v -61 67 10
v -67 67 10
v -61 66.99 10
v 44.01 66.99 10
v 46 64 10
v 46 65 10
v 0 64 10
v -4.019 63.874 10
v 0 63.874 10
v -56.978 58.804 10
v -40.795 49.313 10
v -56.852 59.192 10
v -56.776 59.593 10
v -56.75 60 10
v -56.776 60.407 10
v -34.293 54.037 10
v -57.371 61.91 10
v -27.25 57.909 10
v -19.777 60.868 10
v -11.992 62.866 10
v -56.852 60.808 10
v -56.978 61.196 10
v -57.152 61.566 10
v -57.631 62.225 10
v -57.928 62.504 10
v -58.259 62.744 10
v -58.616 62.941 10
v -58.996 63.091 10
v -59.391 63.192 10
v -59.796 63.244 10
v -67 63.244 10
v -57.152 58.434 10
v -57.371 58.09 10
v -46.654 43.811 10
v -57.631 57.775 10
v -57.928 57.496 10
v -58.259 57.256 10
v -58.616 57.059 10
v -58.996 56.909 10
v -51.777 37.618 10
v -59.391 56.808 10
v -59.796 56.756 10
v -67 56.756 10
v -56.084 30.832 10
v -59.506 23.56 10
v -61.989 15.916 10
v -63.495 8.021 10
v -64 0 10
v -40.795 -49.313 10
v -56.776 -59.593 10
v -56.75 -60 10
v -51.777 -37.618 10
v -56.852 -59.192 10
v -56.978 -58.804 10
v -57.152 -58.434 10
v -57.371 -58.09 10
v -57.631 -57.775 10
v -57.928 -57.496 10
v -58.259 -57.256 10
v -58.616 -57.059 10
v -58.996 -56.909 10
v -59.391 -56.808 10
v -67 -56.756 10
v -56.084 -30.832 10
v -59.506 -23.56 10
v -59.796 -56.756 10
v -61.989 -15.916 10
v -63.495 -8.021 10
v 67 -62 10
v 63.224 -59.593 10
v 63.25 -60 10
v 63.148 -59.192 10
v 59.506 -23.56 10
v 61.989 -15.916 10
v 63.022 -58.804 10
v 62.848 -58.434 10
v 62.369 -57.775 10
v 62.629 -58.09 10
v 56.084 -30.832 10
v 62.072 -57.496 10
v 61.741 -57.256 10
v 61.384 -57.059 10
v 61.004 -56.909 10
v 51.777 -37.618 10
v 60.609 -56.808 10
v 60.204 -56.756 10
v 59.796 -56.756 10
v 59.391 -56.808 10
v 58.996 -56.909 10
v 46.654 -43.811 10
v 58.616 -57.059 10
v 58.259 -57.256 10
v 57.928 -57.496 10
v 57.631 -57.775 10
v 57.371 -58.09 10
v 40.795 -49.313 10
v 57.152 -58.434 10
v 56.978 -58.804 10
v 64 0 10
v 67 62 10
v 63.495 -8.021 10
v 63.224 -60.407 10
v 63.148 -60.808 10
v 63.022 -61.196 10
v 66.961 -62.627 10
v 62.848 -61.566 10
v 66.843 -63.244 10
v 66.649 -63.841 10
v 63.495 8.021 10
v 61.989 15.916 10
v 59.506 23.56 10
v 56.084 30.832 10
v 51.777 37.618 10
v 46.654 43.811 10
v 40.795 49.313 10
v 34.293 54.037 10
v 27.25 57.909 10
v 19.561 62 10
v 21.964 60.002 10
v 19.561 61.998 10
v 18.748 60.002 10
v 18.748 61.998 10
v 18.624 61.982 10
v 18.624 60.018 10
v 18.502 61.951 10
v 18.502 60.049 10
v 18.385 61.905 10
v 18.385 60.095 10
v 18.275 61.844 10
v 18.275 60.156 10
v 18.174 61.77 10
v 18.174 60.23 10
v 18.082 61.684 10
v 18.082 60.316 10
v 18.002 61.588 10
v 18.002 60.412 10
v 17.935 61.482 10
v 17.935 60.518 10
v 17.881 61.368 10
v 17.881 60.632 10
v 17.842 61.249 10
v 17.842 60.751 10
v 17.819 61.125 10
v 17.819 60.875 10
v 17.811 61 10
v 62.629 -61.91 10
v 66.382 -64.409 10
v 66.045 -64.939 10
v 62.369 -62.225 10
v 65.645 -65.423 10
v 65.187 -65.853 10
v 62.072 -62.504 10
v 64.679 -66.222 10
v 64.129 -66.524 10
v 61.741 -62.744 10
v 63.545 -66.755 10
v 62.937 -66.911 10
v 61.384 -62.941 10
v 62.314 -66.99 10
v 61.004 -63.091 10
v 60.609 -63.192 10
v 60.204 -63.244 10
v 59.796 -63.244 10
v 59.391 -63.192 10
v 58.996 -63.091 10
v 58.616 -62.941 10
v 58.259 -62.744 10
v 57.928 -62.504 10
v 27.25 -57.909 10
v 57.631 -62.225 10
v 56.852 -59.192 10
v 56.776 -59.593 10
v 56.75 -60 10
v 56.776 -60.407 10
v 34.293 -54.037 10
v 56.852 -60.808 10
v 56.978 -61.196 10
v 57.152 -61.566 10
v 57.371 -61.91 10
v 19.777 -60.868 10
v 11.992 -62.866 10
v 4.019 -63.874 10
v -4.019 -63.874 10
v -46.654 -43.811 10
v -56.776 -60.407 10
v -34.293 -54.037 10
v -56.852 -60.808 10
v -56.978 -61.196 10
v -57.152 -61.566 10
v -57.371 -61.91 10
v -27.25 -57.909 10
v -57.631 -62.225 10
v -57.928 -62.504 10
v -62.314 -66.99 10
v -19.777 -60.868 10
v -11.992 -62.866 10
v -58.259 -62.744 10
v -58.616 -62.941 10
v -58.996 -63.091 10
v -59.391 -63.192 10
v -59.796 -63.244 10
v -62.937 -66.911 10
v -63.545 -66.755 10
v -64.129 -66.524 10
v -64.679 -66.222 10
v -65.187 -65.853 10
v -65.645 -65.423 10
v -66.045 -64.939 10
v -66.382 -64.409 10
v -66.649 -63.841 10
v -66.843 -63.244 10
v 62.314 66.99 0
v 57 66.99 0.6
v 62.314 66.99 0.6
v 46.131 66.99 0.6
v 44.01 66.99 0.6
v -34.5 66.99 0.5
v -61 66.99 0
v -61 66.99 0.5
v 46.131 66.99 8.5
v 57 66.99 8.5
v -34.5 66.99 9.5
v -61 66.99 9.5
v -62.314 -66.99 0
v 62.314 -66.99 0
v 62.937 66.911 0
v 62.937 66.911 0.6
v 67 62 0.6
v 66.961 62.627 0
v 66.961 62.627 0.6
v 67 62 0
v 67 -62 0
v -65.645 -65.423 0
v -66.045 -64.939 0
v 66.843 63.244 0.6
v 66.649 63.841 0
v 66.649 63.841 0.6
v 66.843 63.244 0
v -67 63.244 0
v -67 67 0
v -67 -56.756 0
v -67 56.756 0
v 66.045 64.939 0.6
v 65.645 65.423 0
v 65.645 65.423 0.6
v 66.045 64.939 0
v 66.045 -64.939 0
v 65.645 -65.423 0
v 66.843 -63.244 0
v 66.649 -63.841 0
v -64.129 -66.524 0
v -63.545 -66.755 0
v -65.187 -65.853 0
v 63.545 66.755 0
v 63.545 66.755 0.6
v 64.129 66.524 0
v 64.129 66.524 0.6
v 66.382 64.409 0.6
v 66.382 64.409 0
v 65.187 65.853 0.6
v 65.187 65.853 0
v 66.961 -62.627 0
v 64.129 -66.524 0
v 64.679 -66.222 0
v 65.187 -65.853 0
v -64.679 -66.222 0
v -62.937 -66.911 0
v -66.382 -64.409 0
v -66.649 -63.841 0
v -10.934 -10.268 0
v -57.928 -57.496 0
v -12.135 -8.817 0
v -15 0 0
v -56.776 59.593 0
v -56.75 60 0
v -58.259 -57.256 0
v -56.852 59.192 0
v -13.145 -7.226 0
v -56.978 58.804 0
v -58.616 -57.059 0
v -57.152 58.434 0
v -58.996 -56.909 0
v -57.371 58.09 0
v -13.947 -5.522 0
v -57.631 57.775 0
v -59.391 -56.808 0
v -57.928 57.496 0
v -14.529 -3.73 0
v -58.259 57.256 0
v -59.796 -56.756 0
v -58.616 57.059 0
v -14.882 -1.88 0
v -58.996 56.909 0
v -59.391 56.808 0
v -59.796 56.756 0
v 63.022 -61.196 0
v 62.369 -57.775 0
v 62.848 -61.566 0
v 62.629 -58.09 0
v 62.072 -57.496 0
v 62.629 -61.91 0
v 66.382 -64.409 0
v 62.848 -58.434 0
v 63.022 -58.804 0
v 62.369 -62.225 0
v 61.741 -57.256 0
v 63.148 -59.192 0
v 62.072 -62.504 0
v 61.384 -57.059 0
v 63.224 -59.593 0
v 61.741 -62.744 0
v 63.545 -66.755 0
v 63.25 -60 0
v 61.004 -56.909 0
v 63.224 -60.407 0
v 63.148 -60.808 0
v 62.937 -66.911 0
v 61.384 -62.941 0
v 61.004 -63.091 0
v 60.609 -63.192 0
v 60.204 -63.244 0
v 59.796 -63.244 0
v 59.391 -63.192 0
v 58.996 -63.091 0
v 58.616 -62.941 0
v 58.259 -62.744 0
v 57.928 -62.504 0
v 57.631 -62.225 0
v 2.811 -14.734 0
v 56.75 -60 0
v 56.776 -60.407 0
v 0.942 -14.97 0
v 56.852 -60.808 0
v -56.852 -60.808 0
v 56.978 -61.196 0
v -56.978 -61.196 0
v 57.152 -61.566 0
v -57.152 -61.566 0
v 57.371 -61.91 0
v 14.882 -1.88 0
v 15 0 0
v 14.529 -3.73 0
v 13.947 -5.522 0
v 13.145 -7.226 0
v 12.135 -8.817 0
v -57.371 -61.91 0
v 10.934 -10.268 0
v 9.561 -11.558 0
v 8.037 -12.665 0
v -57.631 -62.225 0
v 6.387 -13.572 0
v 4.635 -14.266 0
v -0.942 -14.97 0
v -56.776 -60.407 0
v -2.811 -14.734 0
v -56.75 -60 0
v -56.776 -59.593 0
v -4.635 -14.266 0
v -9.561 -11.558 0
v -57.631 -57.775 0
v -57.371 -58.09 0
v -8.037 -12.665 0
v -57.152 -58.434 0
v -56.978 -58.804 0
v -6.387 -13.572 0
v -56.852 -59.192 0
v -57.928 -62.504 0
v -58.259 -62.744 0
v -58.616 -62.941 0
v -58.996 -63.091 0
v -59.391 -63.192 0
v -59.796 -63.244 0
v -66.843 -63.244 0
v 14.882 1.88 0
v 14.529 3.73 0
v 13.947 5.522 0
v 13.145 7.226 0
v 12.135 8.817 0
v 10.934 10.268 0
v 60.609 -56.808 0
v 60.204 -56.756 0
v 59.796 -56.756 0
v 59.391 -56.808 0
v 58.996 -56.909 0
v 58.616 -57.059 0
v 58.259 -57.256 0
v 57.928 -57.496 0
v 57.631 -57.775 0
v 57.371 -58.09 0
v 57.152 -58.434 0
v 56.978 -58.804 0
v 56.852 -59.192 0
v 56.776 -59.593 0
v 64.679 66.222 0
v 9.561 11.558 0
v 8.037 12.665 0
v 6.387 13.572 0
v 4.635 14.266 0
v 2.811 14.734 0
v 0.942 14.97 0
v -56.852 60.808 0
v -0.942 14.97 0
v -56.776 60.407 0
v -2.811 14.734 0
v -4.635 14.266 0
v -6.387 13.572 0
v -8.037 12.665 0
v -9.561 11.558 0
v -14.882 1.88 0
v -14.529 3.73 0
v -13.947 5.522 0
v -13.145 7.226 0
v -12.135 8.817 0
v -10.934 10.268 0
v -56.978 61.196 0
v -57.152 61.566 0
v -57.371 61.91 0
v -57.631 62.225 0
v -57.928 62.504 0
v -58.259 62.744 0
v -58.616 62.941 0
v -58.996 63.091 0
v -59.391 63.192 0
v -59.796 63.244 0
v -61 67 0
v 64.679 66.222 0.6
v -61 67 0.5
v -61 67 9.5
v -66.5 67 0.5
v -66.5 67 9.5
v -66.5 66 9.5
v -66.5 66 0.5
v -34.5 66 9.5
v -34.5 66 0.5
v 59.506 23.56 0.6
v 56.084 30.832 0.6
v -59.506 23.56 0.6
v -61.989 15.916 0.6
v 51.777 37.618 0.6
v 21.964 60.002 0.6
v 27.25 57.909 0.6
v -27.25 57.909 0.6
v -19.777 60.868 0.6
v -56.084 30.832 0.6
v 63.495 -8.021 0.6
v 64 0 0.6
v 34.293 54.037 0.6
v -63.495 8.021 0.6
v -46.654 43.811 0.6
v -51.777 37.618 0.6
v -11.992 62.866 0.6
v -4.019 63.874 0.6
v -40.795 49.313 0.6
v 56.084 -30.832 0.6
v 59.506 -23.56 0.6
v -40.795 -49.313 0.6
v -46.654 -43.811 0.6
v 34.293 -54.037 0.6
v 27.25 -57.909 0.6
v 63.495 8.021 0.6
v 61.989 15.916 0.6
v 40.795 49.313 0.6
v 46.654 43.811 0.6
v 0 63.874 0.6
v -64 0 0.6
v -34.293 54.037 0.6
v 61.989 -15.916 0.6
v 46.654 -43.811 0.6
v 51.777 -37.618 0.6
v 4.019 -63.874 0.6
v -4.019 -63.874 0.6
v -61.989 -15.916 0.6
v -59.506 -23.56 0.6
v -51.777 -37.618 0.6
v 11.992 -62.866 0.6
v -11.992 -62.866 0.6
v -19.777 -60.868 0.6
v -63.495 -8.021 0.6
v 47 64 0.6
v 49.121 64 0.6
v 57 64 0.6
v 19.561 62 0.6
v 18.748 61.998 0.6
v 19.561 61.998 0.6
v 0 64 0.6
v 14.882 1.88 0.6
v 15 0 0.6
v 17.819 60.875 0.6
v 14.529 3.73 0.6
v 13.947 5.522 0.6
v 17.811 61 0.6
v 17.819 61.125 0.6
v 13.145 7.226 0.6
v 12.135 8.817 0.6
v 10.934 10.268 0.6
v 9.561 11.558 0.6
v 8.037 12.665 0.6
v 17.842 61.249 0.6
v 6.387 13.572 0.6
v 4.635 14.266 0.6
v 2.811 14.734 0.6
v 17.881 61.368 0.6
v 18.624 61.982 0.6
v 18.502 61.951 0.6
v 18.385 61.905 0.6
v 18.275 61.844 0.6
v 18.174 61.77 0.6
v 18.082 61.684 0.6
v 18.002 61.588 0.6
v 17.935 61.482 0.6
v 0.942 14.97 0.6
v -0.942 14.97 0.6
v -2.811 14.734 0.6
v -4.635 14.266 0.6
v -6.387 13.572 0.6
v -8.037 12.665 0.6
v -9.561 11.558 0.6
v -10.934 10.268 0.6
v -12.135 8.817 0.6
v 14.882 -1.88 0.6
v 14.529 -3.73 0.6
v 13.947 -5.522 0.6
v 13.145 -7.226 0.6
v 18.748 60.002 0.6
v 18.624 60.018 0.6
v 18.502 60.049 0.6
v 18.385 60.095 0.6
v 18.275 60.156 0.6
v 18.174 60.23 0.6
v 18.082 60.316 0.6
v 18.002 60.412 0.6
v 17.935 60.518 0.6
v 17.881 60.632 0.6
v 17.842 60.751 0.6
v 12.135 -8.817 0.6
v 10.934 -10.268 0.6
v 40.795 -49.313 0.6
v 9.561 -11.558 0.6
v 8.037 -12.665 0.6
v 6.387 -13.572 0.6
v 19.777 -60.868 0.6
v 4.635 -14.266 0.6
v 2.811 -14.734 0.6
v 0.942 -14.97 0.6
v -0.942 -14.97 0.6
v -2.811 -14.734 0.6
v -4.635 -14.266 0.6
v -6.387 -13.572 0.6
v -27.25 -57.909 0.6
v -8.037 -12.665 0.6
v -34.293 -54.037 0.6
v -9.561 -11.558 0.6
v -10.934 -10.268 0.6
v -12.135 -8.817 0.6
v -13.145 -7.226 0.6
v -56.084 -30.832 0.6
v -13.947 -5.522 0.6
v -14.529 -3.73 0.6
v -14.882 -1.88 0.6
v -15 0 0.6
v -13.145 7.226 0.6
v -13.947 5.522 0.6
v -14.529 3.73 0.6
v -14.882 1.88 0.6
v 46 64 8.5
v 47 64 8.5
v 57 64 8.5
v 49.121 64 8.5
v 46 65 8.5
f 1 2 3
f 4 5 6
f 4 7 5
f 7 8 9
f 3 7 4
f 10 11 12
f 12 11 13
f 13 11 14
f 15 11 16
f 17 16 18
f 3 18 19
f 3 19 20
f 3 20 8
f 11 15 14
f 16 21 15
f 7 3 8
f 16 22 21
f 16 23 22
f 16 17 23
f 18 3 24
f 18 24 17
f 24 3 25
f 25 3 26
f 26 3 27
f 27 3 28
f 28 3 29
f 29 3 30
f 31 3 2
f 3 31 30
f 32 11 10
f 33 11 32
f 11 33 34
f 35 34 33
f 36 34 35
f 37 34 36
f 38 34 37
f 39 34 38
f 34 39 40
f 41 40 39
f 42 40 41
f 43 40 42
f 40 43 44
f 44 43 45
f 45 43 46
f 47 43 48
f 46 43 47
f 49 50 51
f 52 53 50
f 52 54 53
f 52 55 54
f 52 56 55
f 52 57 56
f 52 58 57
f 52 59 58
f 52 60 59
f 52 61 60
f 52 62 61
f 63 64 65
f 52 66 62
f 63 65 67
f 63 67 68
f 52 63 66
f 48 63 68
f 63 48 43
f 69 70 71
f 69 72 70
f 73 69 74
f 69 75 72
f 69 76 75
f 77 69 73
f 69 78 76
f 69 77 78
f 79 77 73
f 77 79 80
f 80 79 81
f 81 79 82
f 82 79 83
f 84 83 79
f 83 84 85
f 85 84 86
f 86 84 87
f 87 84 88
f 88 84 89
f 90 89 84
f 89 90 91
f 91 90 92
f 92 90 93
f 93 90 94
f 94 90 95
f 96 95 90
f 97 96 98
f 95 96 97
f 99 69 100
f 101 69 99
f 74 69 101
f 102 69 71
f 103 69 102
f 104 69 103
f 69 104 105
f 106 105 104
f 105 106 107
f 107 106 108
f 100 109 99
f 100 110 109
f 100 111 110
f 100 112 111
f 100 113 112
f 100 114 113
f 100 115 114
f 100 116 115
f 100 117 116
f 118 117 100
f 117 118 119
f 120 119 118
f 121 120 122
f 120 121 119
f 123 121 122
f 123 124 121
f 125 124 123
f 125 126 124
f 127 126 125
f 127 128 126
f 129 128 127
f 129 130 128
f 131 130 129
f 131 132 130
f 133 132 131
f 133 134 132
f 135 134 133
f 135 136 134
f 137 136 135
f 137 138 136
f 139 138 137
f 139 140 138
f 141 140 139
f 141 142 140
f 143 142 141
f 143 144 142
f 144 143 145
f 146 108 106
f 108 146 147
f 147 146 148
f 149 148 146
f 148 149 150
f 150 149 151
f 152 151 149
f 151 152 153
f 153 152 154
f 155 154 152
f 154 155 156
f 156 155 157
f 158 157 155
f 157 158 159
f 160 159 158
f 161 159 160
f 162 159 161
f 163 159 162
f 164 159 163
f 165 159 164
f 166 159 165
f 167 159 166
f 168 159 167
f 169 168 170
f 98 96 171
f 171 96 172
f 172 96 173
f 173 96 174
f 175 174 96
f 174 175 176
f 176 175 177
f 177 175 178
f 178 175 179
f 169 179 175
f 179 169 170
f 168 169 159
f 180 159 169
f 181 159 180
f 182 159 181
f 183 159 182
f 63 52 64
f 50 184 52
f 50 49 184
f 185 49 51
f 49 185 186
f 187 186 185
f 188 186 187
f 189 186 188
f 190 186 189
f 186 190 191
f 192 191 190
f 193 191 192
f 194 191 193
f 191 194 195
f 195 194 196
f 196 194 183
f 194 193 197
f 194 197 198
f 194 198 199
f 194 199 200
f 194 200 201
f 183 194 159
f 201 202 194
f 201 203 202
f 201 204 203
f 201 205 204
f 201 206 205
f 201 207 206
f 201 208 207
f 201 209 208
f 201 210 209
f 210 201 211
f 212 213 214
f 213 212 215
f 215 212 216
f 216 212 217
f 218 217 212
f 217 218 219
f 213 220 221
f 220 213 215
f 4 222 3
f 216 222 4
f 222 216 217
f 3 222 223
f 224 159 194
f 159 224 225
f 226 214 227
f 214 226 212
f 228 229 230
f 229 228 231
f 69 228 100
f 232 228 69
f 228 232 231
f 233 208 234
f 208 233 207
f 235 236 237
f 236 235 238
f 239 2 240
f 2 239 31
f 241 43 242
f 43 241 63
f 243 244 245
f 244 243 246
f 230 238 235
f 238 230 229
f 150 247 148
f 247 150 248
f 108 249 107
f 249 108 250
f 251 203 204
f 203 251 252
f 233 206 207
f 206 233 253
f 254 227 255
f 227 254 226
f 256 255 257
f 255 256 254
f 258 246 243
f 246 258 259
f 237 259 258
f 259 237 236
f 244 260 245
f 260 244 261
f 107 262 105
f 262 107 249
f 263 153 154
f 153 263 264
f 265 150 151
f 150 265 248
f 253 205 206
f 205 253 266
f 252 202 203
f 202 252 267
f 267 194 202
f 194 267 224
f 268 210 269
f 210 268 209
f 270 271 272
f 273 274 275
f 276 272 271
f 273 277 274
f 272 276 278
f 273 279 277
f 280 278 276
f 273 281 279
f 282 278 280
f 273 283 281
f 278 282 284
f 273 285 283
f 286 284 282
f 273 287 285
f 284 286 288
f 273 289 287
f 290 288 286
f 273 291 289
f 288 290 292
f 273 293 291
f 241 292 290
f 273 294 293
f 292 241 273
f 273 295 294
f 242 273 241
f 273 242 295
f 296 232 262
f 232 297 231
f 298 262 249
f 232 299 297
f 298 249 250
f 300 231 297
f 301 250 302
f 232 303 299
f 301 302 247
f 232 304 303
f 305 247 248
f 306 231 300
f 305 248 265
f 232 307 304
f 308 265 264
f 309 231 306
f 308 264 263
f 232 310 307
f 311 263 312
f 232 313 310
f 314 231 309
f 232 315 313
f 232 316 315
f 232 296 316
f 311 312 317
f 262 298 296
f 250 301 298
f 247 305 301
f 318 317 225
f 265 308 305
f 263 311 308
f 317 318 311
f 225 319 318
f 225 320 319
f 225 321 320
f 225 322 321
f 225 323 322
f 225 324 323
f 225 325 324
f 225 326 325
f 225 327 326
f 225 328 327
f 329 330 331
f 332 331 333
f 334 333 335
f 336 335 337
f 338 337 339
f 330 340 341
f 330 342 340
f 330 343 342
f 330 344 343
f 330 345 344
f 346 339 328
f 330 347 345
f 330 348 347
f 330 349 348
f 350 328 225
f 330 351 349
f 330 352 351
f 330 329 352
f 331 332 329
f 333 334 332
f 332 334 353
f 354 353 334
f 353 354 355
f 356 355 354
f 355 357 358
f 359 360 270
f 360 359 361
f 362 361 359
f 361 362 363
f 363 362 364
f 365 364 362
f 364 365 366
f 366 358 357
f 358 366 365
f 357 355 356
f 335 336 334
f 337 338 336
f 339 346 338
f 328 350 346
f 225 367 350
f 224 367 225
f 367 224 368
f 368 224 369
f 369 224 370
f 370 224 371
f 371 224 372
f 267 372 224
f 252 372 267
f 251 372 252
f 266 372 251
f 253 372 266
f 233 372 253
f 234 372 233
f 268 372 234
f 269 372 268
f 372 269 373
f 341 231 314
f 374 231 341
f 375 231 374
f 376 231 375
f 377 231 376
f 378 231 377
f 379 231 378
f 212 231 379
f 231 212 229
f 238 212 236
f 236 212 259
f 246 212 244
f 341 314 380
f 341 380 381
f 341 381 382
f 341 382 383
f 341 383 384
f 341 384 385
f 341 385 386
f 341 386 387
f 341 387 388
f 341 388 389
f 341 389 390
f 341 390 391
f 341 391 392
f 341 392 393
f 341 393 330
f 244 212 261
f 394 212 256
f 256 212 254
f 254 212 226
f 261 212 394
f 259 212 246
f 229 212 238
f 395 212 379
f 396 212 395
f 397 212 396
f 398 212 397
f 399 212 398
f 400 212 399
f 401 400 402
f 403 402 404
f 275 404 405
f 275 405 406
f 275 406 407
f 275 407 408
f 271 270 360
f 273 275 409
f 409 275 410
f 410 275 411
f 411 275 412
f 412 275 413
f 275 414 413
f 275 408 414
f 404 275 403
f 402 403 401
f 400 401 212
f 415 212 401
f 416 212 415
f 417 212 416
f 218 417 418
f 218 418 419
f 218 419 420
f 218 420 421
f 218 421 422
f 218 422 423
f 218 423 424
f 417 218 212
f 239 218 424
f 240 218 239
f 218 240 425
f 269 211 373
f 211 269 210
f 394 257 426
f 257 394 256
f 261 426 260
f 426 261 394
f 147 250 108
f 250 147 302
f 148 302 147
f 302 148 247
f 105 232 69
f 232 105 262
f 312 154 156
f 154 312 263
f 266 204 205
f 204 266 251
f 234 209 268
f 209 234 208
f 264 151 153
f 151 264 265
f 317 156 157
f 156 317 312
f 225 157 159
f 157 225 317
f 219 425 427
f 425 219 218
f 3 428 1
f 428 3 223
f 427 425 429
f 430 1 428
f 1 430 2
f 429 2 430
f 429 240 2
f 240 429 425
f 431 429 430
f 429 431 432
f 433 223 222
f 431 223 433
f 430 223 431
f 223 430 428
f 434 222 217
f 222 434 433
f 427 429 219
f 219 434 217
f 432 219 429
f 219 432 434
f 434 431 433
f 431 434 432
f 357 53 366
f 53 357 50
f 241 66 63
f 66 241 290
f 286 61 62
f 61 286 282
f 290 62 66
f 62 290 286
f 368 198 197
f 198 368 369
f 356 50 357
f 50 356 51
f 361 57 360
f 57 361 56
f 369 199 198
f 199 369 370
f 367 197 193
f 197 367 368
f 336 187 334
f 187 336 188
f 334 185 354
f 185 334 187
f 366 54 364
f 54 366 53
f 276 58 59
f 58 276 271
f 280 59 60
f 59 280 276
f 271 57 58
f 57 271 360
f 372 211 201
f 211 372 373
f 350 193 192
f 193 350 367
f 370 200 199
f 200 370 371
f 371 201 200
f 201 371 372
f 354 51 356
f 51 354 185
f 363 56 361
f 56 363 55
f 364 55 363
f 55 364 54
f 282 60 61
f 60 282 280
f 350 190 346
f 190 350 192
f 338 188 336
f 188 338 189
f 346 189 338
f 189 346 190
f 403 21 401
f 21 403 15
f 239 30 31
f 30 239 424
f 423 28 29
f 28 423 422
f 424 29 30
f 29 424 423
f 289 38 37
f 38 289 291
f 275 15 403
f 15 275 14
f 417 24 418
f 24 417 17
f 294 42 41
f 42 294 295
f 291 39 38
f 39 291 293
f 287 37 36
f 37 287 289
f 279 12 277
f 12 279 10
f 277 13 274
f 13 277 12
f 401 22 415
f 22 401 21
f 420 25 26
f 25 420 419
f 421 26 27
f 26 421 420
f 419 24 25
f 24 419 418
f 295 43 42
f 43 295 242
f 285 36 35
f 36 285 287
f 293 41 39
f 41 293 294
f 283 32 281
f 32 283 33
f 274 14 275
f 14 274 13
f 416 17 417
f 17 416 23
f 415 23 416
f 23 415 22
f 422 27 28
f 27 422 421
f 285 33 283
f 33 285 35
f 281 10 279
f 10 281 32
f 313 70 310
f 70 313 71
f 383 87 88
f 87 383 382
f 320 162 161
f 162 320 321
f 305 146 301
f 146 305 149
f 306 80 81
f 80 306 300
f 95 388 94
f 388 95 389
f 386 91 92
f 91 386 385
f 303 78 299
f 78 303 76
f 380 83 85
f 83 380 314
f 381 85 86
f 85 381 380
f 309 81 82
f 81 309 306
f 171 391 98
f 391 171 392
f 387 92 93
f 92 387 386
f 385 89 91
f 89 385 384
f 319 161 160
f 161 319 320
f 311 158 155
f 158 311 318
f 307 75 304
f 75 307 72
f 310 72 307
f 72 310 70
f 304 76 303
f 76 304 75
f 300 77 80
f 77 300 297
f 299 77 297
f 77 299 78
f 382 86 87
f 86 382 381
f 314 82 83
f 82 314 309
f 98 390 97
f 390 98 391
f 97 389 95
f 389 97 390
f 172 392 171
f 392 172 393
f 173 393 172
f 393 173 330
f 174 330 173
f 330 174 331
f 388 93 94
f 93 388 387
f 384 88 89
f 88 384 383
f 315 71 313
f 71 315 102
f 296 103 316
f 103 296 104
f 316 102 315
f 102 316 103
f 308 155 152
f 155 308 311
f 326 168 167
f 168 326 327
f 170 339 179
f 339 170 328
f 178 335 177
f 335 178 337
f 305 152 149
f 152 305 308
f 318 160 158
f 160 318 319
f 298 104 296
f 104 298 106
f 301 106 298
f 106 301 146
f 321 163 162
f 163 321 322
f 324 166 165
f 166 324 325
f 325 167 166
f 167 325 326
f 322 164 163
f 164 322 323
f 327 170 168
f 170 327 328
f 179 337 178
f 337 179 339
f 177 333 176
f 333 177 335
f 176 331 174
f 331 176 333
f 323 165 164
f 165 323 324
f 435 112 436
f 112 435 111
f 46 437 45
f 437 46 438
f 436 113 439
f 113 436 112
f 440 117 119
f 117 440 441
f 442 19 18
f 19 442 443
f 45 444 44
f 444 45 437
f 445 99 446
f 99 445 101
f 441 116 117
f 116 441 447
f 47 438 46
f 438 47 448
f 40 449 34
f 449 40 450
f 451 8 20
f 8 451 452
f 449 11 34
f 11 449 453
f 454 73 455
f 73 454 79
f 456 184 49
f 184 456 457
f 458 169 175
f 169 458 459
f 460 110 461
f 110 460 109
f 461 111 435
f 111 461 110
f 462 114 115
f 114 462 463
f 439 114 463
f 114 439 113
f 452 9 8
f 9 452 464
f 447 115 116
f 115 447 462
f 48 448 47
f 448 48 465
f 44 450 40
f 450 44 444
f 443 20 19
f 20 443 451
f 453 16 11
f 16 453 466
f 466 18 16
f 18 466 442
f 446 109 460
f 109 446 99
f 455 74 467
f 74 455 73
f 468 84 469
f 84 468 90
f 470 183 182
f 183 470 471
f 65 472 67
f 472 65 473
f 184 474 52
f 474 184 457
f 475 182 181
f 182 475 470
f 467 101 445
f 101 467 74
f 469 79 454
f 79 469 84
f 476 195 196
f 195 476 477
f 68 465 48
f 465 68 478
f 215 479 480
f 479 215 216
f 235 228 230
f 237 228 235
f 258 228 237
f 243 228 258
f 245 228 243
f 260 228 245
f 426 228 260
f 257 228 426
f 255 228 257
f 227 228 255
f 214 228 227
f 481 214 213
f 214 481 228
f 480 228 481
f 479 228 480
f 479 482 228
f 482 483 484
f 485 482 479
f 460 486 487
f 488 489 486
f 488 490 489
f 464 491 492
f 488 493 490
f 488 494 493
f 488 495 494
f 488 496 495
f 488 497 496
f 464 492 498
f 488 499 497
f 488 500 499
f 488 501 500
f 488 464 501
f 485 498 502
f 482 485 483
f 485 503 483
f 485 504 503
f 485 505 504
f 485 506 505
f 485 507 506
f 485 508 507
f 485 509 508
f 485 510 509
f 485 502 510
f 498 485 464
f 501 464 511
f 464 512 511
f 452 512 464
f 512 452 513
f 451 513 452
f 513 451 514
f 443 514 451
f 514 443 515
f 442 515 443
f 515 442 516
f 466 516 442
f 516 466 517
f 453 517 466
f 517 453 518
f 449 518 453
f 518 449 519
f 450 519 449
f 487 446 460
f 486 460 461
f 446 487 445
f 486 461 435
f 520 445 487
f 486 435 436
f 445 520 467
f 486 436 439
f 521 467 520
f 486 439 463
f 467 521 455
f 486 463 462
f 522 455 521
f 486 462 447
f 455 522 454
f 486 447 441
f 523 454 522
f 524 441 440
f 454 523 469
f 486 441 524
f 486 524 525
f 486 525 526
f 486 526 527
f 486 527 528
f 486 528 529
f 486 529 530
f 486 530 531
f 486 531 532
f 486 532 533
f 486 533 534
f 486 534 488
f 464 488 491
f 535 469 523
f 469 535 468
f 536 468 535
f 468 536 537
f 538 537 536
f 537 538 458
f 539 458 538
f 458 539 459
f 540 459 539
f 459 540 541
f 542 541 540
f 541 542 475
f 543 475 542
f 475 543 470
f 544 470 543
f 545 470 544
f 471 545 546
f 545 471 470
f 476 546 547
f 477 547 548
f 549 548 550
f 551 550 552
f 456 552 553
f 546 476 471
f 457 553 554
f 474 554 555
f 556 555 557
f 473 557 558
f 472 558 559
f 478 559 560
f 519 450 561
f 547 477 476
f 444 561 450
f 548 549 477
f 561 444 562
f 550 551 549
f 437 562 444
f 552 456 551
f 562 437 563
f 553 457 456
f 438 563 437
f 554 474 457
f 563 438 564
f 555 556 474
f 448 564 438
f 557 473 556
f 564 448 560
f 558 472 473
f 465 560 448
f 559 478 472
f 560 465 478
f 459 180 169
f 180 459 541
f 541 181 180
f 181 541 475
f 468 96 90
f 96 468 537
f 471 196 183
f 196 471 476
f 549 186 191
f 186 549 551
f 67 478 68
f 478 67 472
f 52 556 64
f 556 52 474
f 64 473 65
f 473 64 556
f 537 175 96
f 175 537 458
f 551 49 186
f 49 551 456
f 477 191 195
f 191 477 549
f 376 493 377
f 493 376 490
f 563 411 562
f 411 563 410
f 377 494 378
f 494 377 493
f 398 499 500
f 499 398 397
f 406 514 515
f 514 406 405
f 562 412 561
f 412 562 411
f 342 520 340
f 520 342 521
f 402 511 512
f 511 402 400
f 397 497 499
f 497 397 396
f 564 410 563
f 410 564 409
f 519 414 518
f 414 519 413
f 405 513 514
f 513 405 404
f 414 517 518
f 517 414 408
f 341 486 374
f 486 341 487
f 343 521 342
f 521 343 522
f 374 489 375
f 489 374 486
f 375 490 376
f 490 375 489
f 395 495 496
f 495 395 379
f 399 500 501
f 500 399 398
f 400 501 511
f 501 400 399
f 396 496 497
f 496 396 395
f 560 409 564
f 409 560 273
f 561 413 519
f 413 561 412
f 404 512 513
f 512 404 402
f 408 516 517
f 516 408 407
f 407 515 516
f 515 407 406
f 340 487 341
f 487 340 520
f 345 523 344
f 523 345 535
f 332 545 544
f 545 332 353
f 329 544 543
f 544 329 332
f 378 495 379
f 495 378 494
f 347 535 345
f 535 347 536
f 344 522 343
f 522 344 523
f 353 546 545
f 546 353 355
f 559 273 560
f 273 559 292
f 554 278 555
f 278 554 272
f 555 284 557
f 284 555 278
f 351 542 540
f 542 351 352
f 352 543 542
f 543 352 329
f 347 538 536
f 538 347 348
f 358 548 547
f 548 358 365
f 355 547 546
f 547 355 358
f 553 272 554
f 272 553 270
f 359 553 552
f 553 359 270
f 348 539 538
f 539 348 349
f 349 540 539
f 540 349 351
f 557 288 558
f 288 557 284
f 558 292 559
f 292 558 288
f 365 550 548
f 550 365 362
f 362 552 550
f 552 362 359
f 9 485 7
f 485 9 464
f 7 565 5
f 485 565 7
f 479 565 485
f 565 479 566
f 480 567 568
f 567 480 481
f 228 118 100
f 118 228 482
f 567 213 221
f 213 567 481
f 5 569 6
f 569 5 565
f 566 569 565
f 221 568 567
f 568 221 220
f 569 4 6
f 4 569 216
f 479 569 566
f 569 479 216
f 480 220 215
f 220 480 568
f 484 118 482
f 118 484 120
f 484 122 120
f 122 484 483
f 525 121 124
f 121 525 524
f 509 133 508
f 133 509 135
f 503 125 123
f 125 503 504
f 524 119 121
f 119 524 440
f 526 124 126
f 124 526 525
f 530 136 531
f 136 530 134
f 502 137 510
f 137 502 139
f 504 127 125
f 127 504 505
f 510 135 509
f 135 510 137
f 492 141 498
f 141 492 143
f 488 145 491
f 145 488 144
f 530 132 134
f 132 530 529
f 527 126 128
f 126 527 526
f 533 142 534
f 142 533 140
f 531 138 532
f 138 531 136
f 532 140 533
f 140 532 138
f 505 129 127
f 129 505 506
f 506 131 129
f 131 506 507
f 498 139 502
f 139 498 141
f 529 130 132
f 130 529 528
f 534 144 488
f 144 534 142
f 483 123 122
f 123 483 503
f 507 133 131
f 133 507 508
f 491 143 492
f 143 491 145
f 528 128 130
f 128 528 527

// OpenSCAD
$fn = 50;


union() {
	difference() {
		union() {
			translate(v = [0, 0, 0]) {
				rotate(a = [0, 0, 0]) {
					hull() {
						translate(v = [-62.0000000000, 62.0000000000, 0]) {
							rotate(a = [0, 0, 0]) {
								translate(v = [0, 0, 0]) {
									rotate(a = [0, 0, 0]) {
										cylinder(h = 10, r = 5);
									}
								}
							}
						}
						translate(v = [62.0000000000, 62.0000000000, 0]) {
							rotate(a = [0, 0, 0]) {
								translate(v = [0, 0, 0]) {
									rotate(a = [0, 0, 0]) {
										cylinder(h = 10, r = 5);
									}
								}
							}
						}
						translate(v = [-62.0000000000, -62.0000000000, 0]) {
							rotate(a = [0, 0, 0]) {
								translate(v = [0, 0, 0]) {
									rotate(a = [0, 0, 0]) {
										cylinder(h = 10, r = 5);
									}
								}
							}
						}
						translate(v = [62.0000000000, -62.0000000000, 0]) {
							rotate(a = [0, 0, 0]) {
								translate(v = [0, 0, 0]) {
									rotate(a = [0, 0, 0]) {
										cylinder(h = 10, r = 5);
									}
								}
							}
						}
					}
				}
			}
			translate(v = [-67.0000000000, 61.0000000000, 0]) {
				rotate(a = [0, 0, 0]) {
					cube(size = [6, 6, 10]);
				}
			}
		}
		union() {
			#translate(v = [-66.5000000000, 66.0000000000, 0.5000000000]) {
				rotate(a = [0, 0, 0]) {
					cube(size = [32, 1, 9.0000000000]);
				}
			}
			translate(v = [-67.5000000000, -60.0000000000, -125]) {
				rotate(a = [0, 0, 0]) {
					hull() {
						translate(v = [7.5000000000, 0, 0]) {
							rotate(a = [0, 0, 0]) {
								translate(v = [0, 0, 0]) {
									rotate(a = [0, 0, 0]) {
										cylinder(h = 250, r = 3.2500000000);
									}
								}
							}
						}
						translate(v = [-7.5000000000, 0, 0]) {
							rotate(a = [0, 0, 0]) {
								translate(v = [0, 0, 0]) {
									rotate(a = [0, 0, 0]) {
										cylinder(h = 250, r = 3.2500000000);
									}
								}
							}
						}
					}
				}
			}
			translate(v = [-67.5000000000, 60.0000000000, -125]) {
				rotate(a = [0, 0, 0]) {
					hull() {
						translate(v = [7.5000000000, 0, 0]) {
							rotate(a = [0, 0, 0]) {
								translate(v = [0, 0, 0]) {
									rotate(a = [0, 0, 0]) {
										cylinder(h = 250, r = 3.2500000000);
									}
								}
							}
						}
						translate(v = [-7.5000000000, 0, 0]) {
							rotate(a = [0, 0, 0]) {
								translate(v = [0, 0, 0]) {
									rotate(a = [0, 0, 0]) {
										cylinder(h = 250, r = 3.2500000000);
									}
								}
							}
						}
					}
				}
			}
			translate(v = [60.0000000000, -60.0000000000, -125.0000000000]) {
				rotate(a = [0, 0, 0]) {
					cylinder(h = 250, r = 3.2500000000);
				}
			}
			translate(v = [0, 0, 0.6000000000]) {
				rotate(a = [0, 0, 0]) {
					cylinder(h = 12.4000000000, r = 64.0000000000);
				}
			}
			translate(v = [0, 0, -5.0000000000]) {
				rotate(a = [0, 0, 0]) {
					cylinder(h = 10, r = 15.0000000000);
				}
			}
			translate(v = [0.0000000000, 62.0000000000, 0.6000000000]) {
				rotate(a = [0, 0, 0]) {
					cube(size = [67.0000000000, 2, 12.4000000000]);
				}
			}
			translate(v = [57.0000000000, 62.0000000000, 0.6000000000]) {
				rotate(a = [0, 0, 0]) {
					cube(size = [10, 5, 12.4000000000]);
				}
			}
			translate(v = [46.0000000000, 62.0000000000, 8.5000000000]) {
				rotate(a = [0, 0, 0]) {
					cube(size = [21, 5, 1.5000000000]);
				}
			}
			translate(v = [43.2500000000, 67.7500000000, 0.6000000000]) {
				rotate(a = [0, 0, -45]) {
					cube(size = [7.5000000000, 1.5000000000, 12.4000000000]);
				}
			}
			translate(v = [12.0610000000, 60.0000000000, 0.6000000000]) {
				rotate(a = [0, 0, 0]) {
					cube(size = [7.5000000000, 2, 9.4000000000]);
				}
			}
		}
	}
	union() {
		translate(v = [21.3110000000, 61.0000000000, 0]) {
			rotate(a = [0, 0, 0]) {
				hull() {
					translate(v = [2.5000000000, 0, 0]) {
						rotate(a = [0, 0, 0]) {
							#translate(v = [0, 0, 0]) {
								rotate(a = [0, 0, 0]) {
									cylinder(h = 10, r = 1.0000000000);
								}
							}
						}
					}
					translate(v = [-2.5000000000, 0, 0]) {
						rotate(a = [0, 0, 0]) {
							#translate(v = [0, 0, 0]) {
								rotate(a = [0, 0, 0]) {
									cylinder(h = 10, r = 1.0000000000);
								}
							}
						}
					}
				}
			}
		}
	}
}
